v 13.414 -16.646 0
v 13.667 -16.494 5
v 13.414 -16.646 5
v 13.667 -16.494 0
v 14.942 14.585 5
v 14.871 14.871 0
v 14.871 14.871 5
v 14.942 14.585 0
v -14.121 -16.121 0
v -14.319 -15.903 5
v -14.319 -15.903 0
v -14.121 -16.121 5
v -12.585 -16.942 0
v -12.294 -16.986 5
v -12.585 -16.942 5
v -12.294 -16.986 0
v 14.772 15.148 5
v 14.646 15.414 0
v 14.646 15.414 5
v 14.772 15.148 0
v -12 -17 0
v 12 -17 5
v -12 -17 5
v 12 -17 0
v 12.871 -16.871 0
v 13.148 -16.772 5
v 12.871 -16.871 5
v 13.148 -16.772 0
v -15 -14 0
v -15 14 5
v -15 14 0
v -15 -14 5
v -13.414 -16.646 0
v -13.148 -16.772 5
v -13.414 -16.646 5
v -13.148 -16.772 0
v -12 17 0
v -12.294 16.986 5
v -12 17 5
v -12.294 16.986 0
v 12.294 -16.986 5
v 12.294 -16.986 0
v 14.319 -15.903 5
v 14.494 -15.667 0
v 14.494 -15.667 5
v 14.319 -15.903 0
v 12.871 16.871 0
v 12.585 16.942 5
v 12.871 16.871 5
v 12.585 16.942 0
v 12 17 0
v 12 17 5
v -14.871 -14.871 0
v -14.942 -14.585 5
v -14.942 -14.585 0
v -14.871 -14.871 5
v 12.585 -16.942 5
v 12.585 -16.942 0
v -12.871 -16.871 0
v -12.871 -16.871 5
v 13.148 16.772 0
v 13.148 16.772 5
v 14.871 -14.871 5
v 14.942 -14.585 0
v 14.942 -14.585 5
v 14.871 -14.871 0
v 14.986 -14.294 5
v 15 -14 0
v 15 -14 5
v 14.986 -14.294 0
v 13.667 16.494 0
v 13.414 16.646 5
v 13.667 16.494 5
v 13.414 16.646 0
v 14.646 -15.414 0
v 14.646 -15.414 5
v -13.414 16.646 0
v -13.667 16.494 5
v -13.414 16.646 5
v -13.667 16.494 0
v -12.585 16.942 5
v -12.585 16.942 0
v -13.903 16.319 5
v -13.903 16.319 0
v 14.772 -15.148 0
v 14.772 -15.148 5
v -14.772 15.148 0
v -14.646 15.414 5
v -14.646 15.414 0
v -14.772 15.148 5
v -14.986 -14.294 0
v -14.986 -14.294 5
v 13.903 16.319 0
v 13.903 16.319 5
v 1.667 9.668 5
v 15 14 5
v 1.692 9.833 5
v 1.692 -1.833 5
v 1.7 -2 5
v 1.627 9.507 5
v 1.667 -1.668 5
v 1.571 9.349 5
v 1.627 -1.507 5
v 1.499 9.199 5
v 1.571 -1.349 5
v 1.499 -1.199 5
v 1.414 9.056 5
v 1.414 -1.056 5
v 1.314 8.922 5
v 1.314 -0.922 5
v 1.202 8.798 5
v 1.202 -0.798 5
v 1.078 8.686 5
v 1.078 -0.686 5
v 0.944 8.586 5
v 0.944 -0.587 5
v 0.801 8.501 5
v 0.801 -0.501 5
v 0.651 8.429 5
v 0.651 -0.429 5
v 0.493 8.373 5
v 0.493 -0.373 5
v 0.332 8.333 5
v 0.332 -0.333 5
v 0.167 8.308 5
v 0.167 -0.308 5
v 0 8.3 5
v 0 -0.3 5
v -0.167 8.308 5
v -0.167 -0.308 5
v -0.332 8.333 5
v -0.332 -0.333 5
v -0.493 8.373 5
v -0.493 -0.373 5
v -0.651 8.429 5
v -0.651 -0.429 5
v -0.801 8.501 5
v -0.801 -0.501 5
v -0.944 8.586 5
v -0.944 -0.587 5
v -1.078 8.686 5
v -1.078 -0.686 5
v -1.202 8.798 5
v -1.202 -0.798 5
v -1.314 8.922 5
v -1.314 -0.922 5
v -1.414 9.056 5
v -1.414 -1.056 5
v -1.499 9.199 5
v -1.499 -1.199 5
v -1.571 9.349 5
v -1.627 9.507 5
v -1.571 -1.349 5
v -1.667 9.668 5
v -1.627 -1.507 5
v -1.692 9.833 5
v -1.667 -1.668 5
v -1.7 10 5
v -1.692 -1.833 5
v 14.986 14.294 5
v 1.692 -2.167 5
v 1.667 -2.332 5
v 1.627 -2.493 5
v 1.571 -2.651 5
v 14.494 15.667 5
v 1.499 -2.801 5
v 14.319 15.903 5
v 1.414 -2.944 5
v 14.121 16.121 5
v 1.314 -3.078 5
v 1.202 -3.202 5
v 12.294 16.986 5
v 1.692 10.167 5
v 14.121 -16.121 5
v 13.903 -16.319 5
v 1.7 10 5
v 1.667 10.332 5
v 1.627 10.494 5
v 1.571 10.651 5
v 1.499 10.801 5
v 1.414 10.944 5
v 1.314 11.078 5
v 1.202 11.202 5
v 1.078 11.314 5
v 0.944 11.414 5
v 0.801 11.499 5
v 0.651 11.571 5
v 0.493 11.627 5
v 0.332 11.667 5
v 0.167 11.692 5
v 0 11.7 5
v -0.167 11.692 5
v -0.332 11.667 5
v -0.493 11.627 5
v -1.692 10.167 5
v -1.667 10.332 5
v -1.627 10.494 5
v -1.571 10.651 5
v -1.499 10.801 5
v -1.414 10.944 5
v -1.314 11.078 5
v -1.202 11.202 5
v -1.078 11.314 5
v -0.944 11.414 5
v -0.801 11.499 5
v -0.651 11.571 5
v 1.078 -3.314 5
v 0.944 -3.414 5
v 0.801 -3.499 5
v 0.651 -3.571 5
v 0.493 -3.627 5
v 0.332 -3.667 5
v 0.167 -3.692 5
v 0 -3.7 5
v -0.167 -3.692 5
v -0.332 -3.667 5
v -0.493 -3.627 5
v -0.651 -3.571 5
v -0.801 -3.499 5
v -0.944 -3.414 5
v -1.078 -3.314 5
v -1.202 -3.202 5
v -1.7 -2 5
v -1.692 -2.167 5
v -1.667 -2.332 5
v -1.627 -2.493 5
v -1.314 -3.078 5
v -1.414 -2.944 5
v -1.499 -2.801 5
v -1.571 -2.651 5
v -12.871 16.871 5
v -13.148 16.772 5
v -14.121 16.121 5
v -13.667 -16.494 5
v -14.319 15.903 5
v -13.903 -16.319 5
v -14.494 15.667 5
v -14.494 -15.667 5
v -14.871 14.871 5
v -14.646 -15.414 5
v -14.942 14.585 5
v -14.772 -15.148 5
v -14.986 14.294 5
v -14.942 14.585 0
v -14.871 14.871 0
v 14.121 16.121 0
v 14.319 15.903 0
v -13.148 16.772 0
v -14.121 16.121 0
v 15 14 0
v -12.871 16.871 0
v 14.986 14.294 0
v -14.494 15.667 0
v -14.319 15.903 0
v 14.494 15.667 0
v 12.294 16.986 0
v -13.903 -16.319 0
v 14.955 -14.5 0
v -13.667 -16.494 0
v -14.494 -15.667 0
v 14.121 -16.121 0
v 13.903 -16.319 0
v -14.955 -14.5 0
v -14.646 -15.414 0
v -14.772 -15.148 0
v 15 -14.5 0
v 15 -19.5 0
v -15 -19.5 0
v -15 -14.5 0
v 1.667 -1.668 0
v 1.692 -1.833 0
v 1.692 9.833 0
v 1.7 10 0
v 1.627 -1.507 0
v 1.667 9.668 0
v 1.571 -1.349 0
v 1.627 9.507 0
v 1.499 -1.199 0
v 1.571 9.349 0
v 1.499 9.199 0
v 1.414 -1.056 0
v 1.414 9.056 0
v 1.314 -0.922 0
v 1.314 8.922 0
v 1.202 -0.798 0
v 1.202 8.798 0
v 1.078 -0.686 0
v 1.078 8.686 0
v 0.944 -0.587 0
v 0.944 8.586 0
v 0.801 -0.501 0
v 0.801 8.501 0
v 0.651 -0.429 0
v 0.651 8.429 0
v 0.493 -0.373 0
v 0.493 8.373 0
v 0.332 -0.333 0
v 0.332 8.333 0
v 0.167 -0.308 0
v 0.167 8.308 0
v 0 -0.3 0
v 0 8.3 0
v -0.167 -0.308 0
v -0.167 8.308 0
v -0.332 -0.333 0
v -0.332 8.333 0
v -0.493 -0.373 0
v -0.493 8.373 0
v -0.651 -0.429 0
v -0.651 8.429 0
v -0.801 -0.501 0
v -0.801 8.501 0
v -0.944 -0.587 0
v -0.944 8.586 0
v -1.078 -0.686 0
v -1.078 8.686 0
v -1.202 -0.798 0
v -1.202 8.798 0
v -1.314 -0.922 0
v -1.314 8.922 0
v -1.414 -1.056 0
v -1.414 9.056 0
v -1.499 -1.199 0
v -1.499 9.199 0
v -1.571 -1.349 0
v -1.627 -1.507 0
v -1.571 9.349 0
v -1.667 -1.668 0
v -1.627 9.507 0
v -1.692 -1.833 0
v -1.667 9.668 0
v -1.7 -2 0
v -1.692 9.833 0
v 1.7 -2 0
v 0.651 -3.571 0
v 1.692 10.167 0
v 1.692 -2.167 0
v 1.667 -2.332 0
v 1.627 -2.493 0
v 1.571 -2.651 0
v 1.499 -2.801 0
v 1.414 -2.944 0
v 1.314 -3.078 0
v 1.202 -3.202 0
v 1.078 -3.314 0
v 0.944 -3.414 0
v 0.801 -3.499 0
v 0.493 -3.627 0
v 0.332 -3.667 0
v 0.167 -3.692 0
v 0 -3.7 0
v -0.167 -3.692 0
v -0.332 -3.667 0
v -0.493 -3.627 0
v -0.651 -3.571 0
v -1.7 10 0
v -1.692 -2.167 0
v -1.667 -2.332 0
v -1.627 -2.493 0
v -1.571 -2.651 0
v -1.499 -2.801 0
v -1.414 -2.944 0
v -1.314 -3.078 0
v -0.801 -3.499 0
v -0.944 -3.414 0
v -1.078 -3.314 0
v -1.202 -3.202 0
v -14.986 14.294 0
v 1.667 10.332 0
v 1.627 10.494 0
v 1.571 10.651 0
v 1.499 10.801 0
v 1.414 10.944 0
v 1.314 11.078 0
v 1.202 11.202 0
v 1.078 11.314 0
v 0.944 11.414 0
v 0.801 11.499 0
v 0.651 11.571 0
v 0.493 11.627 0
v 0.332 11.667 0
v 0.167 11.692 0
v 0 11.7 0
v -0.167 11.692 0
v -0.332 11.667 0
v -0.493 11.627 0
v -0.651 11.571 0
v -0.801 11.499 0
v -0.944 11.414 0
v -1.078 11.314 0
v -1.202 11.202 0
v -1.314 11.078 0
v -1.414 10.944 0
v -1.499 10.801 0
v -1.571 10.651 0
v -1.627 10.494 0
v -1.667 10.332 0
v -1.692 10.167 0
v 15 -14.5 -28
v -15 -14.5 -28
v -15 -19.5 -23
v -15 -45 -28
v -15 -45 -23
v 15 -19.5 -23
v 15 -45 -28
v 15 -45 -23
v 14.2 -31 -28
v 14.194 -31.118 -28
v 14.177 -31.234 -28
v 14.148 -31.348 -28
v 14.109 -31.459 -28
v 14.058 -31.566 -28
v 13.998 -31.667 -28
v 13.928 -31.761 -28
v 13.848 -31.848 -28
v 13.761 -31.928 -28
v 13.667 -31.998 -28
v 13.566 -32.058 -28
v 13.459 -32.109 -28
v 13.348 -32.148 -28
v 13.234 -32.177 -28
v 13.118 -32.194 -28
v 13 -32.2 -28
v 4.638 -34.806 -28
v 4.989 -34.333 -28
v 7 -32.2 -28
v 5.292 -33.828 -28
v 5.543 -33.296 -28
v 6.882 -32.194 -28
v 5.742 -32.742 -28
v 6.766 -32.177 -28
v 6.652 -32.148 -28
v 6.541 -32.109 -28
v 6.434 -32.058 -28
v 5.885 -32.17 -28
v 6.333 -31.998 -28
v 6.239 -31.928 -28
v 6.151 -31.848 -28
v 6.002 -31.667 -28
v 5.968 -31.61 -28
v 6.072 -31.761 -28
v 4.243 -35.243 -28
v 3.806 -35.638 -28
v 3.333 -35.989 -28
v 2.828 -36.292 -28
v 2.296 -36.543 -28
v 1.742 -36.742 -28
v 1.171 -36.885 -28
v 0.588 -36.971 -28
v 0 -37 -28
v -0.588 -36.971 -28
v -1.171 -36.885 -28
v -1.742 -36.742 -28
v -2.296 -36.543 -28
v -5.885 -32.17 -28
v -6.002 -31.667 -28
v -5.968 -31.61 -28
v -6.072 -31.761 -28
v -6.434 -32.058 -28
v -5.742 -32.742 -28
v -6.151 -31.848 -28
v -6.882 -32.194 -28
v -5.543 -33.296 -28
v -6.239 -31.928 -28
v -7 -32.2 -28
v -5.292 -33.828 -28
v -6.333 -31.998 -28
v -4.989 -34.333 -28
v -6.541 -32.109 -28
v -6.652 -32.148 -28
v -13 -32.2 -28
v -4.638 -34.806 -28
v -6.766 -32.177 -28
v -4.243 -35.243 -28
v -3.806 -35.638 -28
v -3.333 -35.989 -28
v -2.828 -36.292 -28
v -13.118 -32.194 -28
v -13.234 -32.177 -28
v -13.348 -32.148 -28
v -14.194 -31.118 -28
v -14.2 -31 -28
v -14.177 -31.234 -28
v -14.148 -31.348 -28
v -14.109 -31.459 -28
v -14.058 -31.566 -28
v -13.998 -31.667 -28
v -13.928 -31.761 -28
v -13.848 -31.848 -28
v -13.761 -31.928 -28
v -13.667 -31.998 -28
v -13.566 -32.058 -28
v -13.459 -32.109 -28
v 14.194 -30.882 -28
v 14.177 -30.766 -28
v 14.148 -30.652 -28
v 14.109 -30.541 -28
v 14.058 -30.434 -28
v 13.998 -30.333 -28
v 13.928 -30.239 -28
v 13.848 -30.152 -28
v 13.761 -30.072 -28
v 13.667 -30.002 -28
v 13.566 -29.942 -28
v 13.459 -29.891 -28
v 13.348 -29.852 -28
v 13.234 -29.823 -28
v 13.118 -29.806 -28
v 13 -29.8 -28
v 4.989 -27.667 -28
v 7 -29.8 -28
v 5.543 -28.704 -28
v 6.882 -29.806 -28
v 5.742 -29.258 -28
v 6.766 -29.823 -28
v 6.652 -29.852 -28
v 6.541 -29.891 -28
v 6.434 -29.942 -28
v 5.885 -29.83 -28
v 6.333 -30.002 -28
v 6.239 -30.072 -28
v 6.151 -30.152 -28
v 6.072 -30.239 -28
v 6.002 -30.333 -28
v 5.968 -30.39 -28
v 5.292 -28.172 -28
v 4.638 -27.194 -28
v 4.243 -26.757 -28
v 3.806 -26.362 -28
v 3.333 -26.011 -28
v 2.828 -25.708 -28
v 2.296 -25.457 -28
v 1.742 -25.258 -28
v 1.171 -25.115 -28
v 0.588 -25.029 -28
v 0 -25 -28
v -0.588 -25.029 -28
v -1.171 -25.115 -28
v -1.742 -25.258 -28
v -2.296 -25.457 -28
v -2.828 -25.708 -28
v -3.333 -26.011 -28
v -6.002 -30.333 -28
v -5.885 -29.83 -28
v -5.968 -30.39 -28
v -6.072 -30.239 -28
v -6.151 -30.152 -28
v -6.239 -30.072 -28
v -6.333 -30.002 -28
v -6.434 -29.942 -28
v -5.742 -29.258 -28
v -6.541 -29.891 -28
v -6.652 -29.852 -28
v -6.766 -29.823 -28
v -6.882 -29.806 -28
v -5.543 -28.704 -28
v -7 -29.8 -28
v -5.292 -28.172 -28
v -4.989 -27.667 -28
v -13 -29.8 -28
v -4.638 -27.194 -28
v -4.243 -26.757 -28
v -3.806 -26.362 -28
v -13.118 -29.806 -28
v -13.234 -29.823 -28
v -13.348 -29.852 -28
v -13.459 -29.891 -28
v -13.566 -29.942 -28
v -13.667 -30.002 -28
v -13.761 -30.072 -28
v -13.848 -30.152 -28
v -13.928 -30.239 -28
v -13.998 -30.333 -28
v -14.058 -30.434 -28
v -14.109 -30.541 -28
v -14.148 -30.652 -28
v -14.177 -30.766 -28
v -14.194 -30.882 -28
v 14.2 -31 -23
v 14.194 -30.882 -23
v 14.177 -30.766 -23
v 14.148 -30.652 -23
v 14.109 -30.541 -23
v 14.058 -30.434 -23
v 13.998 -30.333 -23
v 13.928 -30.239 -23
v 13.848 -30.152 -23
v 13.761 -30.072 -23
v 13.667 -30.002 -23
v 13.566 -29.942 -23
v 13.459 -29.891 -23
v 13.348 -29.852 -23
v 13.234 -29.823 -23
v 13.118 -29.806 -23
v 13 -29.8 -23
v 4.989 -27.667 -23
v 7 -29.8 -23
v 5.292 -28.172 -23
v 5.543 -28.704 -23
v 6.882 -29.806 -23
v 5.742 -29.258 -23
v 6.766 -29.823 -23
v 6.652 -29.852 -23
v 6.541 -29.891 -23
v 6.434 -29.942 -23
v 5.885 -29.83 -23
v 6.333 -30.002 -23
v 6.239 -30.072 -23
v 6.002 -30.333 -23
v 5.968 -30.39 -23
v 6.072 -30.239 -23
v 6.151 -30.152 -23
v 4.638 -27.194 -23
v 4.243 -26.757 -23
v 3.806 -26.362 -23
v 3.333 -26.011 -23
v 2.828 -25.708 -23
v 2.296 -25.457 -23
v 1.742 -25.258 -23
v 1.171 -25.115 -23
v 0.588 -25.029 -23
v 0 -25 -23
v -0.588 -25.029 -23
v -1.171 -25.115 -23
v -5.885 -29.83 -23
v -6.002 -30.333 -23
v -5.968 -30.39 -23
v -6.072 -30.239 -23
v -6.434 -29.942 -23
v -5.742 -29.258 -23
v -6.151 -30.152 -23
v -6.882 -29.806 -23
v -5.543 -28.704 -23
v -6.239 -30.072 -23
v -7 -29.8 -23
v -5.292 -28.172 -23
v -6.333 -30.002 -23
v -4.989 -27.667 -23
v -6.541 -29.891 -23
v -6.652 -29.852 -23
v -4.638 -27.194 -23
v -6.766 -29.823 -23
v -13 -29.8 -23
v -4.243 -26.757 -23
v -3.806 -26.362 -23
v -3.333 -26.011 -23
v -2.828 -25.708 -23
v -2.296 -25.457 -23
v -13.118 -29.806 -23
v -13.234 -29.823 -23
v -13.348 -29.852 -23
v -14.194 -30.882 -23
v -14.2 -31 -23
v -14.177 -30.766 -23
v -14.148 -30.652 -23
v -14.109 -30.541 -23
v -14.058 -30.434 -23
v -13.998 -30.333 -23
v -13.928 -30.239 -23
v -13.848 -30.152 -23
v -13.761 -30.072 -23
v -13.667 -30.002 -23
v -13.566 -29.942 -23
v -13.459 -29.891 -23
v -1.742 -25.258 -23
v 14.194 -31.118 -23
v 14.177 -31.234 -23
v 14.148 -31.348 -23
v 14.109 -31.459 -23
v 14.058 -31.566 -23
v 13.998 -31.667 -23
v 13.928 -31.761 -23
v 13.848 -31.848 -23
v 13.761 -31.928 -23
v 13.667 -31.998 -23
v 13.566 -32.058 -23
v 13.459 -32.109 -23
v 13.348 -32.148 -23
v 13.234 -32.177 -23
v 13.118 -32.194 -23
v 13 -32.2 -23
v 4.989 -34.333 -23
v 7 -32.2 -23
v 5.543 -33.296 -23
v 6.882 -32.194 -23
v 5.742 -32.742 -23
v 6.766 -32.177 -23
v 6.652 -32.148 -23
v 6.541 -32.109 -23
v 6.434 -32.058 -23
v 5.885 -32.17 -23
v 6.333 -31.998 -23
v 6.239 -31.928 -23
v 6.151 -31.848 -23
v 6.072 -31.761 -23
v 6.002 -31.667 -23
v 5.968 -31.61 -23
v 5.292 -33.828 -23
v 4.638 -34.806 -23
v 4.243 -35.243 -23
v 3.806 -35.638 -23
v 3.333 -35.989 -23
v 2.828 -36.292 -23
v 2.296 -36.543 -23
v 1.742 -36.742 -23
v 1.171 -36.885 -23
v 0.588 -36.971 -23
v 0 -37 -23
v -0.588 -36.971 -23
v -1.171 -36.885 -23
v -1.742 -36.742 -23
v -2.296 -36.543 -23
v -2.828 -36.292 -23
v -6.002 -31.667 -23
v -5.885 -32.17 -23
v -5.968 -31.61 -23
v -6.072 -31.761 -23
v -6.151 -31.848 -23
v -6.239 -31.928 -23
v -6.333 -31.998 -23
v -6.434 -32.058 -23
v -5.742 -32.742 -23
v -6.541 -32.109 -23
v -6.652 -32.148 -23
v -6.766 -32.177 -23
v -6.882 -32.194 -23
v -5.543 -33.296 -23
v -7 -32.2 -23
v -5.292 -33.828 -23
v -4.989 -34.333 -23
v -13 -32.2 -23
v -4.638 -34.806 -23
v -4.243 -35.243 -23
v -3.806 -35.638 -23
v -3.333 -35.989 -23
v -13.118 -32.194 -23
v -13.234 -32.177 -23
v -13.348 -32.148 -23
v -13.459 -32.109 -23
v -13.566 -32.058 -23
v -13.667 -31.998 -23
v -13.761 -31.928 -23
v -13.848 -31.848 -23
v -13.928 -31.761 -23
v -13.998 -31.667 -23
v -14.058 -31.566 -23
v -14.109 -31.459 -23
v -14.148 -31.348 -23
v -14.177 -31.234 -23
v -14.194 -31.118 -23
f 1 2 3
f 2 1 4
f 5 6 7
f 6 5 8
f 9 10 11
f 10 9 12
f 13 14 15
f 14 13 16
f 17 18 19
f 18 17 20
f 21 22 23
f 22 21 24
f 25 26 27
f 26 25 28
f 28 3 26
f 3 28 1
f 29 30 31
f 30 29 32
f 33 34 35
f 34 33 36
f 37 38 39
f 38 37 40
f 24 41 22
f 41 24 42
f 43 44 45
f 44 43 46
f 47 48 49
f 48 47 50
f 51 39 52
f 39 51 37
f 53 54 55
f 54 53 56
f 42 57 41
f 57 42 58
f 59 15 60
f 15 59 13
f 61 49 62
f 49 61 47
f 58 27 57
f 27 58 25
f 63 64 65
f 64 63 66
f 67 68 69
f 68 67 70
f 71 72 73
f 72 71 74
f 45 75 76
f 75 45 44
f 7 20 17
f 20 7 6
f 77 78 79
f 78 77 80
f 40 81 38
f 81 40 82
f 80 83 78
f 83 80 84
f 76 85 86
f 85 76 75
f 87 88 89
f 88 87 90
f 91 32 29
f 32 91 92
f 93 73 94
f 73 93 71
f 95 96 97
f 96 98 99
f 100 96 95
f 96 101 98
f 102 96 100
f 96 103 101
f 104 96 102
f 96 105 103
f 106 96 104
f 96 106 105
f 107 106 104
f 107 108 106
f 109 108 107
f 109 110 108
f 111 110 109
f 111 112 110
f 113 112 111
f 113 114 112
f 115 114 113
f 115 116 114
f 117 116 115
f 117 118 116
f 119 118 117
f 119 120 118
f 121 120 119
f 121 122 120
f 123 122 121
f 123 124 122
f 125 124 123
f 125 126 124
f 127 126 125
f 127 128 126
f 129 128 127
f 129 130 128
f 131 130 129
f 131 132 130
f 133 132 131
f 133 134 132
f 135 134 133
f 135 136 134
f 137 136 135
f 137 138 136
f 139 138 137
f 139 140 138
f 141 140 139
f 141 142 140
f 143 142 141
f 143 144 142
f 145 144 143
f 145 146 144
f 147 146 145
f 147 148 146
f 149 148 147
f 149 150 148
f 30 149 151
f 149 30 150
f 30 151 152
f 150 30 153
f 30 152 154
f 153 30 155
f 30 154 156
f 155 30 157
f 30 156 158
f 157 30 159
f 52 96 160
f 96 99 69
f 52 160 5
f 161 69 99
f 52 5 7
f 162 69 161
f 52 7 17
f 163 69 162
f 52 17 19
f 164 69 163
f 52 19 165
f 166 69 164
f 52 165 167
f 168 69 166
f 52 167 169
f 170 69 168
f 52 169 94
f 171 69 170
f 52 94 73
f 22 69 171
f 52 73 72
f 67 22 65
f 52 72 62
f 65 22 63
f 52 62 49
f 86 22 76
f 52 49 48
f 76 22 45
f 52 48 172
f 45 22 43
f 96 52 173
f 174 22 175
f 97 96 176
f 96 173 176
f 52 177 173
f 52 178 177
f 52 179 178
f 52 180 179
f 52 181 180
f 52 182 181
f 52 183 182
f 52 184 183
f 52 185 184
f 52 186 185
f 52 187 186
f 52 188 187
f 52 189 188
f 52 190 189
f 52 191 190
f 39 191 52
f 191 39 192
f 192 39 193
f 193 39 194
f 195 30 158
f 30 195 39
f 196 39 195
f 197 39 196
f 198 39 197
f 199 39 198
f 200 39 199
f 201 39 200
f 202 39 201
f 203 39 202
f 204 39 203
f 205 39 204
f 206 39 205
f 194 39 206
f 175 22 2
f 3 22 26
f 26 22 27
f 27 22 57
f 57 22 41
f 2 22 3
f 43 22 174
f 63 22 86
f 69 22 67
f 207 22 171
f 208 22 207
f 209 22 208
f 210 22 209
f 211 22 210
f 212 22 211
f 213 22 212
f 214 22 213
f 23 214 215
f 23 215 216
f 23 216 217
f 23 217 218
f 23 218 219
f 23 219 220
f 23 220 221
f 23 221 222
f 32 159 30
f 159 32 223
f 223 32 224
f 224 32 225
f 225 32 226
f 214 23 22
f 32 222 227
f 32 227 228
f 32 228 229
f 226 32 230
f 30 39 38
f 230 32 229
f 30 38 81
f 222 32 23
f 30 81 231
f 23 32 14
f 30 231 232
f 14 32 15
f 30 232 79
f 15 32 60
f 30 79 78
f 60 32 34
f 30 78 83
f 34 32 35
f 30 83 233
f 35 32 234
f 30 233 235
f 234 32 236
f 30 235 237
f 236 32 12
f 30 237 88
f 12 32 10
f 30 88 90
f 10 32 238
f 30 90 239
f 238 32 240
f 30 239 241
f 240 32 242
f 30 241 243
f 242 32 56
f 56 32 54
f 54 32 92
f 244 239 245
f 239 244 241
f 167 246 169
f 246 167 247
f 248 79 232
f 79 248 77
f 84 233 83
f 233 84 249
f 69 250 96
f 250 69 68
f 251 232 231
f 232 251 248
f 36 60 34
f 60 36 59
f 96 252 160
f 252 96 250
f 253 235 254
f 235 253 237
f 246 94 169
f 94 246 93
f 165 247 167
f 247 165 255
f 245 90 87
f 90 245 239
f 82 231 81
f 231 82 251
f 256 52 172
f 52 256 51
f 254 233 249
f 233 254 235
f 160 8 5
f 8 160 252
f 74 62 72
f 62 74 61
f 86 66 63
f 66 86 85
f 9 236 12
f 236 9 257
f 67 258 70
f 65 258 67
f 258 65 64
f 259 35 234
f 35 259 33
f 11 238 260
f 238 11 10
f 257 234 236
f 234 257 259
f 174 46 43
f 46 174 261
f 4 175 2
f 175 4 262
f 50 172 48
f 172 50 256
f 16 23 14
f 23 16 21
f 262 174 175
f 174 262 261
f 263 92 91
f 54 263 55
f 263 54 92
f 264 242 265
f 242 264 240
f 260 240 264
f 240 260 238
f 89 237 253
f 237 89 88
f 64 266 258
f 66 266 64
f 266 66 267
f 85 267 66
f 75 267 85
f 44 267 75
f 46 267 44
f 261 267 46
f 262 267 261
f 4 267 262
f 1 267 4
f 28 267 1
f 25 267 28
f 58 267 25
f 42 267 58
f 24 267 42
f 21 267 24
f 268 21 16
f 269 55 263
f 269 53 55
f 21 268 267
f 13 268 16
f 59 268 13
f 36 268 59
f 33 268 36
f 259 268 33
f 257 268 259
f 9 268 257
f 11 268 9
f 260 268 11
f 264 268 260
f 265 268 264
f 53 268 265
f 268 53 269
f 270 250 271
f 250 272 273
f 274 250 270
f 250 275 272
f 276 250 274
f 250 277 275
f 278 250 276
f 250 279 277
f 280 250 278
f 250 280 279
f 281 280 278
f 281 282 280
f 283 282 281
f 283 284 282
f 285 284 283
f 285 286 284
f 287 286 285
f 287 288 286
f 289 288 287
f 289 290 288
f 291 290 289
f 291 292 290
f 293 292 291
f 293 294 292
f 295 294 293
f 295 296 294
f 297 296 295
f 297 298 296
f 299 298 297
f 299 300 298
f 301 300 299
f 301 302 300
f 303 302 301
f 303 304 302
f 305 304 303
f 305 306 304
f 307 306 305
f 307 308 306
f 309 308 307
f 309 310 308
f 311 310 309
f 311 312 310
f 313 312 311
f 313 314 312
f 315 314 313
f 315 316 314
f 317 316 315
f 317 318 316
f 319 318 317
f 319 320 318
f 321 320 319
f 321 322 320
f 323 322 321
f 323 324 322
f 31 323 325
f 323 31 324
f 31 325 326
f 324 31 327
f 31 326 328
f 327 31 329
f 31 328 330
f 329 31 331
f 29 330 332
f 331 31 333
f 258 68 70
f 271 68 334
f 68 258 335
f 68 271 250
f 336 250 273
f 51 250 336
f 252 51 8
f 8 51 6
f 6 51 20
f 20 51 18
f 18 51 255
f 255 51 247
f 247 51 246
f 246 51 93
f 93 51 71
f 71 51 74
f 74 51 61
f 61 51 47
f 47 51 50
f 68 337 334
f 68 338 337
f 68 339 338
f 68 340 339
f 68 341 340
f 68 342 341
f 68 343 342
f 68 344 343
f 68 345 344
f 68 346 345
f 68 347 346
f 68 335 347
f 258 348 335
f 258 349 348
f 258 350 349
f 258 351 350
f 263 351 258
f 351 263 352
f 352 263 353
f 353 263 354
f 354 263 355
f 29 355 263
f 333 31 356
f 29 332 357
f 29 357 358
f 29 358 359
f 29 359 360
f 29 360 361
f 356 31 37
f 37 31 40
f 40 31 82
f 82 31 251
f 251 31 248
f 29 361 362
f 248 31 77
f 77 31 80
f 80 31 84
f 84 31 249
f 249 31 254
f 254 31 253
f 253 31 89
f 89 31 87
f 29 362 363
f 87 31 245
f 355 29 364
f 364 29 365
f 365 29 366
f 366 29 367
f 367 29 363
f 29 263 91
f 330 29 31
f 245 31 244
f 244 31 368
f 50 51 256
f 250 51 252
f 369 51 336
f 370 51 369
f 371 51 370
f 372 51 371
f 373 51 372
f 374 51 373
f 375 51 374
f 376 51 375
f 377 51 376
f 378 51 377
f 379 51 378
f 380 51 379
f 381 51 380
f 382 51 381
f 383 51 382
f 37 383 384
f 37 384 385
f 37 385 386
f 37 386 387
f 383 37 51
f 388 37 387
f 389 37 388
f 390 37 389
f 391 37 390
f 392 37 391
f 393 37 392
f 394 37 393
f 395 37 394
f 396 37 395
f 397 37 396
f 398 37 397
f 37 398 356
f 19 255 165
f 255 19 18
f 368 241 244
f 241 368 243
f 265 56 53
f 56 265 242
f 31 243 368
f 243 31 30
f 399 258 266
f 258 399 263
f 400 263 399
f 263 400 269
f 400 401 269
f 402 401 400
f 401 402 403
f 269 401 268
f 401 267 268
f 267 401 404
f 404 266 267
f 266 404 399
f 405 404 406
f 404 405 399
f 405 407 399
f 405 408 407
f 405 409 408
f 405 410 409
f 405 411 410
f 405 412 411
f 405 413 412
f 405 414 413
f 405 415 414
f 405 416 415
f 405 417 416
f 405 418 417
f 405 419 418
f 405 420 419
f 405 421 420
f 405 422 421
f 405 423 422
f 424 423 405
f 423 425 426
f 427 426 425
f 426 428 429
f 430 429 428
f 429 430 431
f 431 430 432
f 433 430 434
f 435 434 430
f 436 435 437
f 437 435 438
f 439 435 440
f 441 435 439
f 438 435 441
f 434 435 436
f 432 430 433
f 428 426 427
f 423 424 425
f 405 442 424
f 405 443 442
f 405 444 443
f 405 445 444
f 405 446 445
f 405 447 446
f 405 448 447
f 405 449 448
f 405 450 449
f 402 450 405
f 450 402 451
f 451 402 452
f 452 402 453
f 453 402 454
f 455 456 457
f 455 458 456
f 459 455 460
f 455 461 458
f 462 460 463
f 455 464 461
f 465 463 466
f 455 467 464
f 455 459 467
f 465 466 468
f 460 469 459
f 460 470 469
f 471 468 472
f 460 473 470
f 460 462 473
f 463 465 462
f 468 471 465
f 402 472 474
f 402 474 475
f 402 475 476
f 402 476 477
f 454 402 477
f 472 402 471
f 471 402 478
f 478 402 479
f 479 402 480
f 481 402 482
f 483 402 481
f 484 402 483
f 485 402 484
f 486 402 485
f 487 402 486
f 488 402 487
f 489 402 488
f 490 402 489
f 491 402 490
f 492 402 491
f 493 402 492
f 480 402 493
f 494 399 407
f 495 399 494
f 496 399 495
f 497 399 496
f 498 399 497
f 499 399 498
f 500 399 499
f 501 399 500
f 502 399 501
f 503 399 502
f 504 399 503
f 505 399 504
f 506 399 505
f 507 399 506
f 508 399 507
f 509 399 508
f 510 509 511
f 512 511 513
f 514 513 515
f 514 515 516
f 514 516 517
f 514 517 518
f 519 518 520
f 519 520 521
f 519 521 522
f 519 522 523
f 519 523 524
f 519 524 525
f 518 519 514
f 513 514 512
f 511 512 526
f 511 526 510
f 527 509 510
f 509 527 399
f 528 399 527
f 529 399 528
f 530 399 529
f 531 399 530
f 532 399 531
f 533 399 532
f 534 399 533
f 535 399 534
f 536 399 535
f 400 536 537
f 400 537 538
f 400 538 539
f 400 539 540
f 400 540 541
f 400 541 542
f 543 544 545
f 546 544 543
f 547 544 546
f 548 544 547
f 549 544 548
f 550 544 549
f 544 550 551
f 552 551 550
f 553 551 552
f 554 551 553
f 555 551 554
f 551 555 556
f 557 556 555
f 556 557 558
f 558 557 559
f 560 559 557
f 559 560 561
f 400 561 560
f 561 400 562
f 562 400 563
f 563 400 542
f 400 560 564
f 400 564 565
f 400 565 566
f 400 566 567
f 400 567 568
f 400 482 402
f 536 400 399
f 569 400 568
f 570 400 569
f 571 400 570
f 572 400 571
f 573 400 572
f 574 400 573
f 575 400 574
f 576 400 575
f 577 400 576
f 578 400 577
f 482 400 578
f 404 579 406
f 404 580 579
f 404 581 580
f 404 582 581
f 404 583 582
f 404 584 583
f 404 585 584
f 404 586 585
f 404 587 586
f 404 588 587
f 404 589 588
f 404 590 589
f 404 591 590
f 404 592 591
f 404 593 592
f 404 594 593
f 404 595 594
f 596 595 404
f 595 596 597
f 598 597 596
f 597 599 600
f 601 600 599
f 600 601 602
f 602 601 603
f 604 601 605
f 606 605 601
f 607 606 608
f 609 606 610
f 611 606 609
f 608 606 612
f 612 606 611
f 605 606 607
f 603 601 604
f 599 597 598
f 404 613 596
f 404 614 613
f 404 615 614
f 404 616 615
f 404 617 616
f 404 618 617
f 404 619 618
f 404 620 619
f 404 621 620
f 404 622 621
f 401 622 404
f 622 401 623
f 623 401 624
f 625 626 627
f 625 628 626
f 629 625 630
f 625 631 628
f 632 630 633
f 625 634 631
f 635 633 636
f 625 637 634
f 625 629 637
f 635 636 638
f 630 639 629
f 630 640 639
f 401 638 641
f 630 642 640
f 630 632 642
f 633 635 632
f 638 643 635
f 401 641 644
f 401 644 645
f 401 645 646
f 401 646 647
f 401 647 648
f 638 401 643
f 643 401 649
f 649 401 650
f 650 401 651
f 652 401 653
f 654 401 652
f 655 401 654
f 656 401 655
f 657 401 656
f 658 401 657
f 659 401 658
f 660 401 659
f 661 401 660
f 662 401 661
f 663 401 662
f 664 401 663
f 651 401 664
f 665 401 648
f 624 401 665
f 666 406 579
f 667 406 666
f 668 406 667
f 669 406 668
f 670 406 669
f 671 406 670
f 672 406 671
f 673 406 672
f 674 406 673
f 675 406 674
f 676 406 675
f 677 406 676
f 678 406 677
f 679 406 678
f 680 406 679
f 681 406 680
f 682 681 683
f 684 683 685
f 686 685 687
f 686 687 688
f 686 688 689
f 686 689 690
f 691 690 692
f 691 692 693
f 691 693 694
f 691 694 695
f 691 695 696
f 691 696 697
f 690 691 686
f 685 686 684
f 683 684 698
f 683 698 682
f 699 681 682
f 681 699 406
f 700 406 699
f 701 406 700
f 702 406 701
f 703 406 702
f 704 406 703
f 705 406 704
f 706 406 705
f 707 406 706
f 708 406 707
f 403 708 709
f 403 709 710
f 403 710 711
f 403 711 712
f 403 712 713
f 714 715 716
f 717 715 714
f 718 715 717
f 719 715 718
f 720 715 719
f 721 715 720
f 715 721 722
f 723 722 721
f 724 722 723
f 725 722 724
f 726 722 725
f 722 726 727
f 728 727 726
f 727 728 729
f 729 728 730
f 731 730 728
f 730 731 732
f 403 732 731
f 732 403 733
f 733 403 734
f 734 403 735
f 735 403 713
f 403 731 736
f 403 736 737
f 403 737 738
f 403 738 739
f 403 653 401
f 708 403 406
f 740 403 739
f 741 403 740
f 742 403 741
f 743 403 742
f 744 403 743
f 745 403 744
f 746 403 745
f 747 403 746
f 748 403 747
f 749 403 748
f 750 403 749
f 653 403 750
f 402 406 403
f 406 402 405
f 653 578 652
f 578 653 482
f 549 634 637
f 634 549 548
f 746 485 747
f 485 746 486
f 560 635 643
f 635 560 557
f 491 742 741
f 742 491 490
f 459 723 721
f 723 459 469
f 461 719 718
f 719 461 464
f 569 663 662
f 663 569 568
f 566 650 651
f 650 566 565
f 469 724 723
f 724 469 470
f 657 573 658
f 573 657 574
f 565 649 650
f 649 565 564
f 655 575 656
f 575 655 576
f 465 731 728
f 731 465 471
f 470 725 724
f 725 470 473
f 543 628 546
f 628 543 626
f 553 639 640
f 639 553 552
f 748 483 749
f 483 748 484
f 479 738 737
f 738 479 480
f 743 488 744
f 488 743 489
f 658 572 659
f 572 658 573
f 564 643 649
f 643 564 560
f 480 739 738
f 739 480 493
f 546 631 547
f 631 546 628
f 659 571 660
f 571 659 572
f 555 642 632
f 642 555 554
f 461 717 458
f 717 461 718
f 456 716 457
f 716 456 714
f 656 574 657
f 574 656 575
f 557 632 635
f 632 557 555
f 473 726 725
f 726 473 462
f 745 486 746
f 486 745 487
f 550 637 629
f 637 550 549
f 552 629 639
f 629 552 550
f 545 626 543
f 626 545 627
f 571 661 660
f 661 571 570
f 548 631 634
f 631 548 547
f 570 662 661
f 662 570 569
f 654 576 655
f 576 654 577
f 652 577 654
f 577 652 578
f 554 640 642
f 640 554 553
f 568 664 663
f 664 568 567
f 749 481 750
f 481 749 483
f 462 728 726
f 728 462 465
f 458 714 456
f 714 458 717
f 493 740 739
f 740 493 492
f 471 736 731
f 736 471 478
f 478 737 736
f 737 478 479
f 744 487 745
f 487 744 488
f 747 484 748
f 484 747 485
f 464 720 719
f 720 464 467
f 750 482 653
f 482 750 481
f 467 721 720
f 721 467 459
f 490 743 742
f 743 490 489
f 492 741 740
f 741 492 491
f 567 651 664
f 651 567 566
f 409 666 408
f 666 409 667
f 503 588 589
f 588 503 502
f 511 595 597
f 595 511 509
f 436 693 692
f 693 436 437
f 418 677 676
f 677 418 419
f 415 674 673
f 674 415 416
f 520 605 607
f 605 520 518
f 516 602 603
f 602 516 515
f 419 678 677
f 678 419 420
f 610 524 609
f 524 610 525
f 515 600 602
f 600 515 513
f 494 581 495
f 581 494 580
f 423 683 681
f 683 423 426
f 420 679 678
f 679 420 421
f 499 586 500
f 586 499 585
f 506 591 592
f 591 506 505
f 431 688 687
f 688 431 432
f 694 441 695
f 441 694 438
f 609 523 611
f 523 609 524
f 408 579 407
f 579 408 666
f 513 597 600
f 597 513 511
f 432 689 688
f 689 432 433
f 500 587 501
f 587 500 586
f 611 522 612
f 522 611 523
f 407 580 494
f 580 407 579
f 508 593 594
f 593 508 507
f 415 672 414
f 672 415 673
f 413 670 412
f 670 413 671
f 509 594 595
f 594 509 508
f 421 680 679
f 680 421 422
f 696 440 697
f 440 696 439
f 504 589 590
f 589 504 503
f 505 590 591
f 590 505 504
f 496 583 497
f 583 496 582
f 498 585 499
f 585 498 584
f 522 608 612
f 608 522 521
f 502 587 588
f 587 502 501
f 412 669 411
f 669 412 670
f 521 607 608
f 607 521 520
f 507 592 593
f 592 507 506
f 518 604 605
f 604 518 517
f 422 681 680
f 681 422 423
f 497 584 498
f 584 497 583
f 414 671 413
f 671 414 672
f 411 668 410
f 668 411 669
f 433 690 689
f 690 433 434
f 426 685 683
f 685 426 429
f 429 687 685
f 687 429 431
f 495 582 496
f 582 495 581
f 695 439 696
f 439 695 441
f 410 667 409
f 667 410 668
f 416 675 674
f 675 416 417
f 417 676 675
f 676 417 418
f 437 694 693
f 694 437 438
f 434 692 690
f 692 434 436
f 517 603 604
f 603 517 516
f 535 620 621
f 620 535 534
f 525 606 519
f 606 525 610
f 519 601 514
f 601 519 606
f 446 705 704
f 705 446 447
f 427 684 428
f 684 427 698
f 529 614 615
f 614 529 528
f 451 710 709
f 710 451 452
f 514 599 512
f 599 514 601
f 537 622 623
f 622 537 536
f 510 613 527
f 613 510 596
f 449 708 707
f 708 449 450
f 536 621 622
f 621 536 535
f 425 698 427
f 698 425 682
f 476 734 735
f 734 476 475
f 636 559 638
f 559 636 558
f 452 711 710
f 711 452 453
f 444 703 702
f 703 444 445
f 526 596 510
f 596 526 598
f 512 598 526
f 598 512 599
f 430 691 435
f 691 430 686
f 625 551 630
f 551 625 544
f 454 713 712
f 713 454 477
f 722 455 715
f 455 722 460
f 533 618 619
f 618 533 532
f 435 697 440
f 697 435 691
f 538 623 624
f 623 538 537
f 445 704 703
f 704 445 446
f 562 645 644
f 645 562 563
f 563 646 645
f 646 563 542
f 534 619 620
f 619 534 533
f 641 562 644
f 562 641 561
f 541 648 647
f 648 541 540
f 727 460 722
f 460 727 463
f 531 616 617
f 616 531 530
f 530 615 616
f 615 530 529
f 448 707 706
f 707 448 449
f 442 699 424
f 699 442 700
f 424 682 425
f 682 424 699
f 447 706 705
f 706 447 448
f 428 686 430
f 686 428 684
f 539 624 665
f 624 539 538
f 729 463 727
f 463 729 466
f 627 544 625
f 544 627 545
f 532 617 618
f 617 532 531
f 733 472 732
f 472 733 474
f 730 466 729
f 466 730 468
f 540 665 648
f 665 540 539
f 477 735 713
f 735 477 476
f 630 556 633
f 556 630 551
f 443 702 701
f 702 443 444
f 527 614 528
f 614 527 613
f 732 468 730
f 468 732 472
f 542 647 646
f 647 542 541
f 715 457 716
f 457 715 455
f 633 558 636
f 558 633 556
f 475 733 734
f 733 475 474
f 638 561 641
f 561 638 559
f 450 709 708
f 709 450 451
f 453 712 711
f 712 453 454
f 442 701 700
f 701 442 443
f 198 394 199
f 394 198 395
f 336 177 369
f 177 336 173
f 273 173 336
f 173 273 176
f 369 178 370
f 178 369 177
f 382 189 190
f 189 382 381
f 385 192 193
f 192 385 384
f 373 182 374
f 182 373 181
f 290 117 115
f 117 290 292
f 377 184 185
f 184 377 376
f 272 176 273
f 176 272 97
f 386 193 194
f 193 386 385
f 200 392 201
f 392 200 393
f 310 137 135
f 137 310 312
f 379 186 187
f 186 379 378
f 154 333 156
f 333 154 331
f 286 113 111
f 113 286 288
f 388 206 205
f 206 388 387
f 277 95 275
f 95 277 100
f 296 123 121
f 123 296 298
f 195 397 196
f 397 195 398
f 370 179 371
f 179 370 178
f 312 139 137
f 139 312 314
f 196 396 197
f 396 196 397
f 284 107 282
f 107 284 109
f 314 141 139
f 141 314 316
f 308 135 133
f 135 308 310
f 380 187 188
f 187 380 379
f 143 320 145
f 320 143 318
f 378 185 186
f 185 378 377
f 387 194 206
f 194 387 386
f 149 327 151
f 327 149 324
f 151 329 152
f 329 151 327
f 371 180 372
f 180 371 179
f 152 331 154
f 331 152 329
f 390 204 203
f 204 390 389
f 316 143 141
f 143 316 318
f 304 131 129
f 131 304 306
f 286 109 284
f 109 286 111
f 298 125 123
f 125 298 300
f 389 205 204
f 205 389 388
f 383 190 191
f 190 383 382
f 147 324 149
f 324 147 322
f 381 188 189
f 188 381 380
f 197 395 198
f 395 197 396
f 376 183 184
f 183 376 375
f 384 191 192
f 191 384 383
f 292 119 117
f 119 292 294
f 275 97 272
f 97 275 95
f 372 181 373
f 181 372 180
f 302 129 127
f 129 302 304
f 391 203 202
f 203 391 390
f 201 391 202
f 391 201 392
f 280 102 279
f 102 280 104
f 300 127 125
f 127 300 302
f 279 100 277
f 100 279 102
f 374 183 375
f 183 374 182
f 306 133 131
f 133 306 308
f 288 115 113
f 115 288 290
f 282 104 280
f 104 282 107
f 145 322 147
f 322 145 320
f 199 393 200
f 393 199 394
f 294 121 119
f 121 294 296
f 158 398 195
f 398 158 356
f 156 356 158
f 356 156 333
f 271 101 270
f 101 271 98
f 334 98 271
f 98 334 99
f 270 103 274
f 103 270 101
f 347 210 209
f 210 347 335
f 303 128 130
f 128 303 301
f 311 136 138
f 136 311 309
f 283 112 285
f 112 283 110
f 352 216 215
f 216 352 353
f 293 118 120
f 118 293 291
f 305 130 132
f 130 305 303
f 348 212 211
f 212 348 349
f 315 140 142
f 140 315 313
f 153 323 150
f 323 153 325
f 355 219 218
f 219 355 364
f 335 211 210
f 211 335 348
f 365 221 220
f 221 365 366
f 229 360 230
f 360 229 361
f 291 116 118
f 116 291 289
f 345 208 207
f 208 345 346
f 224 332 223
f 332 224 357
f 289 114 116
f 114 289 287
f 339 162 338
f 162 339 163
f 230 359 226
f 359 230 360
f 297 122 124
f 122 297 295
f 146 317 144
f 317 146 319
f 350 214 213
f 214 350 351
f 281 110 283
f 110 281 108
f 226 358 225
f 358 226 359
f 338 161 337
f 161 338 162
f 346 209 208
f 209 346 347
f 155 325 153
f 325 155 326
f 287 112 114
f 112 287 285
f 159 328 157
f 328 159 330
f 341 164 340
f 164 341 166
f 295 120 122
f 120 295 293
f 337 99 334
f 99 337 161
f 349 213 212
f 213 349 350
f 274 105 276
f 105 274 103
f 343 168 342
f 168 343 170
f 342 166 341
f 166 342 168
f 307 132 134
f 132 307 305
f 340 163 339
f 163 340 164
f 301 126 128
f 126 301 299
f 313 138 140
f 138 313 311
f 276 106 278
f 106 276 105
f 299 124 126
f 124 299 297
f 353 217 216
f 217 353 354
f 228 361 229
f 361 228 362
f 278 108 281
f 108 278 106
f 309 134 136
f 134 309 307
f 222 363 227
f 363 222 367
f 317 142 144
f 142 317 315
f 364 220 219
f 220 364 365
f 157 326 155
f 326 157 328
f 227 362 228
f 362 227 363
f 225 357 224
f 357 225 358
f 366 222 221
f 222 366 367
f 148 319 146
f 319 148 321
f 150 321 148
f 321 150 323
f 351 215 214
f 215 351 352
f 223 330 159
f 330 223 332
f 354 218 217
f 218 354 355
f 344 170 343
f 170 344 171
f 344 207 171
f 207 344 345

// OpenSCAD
// file: common.scad
// KARAKURI shared parameters and helpers
// All dimensions in millimetres. Holes are printed undersize-safe:
// M3 through 3.4, M4 through 4.5, M2.5 through 2.9, quarter-inch 6.6.

$fn = 64;

m2_5 = 2.9;
m3 = 3.4;
m4 = 4.5;
quarter_inch = 6.6;

module rounded_plate(x, y, t, r = 8) {
    linear_extrude(t)
        offset(r = r) offset(delta = -r)
            square([x, y], center = true);
}

module hole(d, h) {
    translate([0, 0, -0.5]) cylinder(d = d, h = h + 1);
}

module slot(d, len, h) {
    translate([0, 0, -0.5])
        linear_extrude(h + 1)
            hull() {
                translate([-len / 2, 0]) circle(d = d);
                translate([ len / 2, 0]) circle(d = d);
            }
}

module four_holes(dx, dy, d, h) {
    for (sx = [-1, 1], sy = [-1, 1])
        translate([sx * dx / 2, sy * dy / 2, 0]) hole(d, h);
}
// main file
// Cliff sensor bracket. This is the part that keeps the robot off
// your stairs. Holds a VL53L0X time of flight breakout (or a Sharp
// GP2Y0A41 IR sensor on the wide slots) pointing straight down past
// the deck edge. Mount one at each front corner and one each side of
// the rear so the robot is protected driving forward and reversing.
// Print 4. Flat side down, no supports.

include <common.scad>

drop = 28;          // sensor face below deck level, keeps floor in range
tab_w = 30;

module cliff_bracket() {
    difference() {
        union() {
            // Deck tab
            rounded_plate(tab_w, 34, 5, 3);
            // Drop leg
            translate([0, -17 + 2.5, 0])
                rotate([90, 0, 0])
                    linear_extrude(5)
                        translate([0, -drop / 2]) square([tab_w, drop], center = true);
            // Sensor shelf at the bottom of the leg
            translate([0, -17 - 14, -drop])
                linear_extrude(5) square([tab_w, 28], center = true);
        }
        // Deck holes
        translate([0, 10, 0]) hole(m3, 5);
        translate([0, -2, 0]) hole(m3, 5);
        // Sensor window and slots in the shelf
        translate([0, -17 - 14, -drop]) {
            hole(12, 5);
            for (x = [-10, 10]) translate([x, 0, 0]) slot(2.4, 6, 5);
        }
    }
}

cliff_bracket();
